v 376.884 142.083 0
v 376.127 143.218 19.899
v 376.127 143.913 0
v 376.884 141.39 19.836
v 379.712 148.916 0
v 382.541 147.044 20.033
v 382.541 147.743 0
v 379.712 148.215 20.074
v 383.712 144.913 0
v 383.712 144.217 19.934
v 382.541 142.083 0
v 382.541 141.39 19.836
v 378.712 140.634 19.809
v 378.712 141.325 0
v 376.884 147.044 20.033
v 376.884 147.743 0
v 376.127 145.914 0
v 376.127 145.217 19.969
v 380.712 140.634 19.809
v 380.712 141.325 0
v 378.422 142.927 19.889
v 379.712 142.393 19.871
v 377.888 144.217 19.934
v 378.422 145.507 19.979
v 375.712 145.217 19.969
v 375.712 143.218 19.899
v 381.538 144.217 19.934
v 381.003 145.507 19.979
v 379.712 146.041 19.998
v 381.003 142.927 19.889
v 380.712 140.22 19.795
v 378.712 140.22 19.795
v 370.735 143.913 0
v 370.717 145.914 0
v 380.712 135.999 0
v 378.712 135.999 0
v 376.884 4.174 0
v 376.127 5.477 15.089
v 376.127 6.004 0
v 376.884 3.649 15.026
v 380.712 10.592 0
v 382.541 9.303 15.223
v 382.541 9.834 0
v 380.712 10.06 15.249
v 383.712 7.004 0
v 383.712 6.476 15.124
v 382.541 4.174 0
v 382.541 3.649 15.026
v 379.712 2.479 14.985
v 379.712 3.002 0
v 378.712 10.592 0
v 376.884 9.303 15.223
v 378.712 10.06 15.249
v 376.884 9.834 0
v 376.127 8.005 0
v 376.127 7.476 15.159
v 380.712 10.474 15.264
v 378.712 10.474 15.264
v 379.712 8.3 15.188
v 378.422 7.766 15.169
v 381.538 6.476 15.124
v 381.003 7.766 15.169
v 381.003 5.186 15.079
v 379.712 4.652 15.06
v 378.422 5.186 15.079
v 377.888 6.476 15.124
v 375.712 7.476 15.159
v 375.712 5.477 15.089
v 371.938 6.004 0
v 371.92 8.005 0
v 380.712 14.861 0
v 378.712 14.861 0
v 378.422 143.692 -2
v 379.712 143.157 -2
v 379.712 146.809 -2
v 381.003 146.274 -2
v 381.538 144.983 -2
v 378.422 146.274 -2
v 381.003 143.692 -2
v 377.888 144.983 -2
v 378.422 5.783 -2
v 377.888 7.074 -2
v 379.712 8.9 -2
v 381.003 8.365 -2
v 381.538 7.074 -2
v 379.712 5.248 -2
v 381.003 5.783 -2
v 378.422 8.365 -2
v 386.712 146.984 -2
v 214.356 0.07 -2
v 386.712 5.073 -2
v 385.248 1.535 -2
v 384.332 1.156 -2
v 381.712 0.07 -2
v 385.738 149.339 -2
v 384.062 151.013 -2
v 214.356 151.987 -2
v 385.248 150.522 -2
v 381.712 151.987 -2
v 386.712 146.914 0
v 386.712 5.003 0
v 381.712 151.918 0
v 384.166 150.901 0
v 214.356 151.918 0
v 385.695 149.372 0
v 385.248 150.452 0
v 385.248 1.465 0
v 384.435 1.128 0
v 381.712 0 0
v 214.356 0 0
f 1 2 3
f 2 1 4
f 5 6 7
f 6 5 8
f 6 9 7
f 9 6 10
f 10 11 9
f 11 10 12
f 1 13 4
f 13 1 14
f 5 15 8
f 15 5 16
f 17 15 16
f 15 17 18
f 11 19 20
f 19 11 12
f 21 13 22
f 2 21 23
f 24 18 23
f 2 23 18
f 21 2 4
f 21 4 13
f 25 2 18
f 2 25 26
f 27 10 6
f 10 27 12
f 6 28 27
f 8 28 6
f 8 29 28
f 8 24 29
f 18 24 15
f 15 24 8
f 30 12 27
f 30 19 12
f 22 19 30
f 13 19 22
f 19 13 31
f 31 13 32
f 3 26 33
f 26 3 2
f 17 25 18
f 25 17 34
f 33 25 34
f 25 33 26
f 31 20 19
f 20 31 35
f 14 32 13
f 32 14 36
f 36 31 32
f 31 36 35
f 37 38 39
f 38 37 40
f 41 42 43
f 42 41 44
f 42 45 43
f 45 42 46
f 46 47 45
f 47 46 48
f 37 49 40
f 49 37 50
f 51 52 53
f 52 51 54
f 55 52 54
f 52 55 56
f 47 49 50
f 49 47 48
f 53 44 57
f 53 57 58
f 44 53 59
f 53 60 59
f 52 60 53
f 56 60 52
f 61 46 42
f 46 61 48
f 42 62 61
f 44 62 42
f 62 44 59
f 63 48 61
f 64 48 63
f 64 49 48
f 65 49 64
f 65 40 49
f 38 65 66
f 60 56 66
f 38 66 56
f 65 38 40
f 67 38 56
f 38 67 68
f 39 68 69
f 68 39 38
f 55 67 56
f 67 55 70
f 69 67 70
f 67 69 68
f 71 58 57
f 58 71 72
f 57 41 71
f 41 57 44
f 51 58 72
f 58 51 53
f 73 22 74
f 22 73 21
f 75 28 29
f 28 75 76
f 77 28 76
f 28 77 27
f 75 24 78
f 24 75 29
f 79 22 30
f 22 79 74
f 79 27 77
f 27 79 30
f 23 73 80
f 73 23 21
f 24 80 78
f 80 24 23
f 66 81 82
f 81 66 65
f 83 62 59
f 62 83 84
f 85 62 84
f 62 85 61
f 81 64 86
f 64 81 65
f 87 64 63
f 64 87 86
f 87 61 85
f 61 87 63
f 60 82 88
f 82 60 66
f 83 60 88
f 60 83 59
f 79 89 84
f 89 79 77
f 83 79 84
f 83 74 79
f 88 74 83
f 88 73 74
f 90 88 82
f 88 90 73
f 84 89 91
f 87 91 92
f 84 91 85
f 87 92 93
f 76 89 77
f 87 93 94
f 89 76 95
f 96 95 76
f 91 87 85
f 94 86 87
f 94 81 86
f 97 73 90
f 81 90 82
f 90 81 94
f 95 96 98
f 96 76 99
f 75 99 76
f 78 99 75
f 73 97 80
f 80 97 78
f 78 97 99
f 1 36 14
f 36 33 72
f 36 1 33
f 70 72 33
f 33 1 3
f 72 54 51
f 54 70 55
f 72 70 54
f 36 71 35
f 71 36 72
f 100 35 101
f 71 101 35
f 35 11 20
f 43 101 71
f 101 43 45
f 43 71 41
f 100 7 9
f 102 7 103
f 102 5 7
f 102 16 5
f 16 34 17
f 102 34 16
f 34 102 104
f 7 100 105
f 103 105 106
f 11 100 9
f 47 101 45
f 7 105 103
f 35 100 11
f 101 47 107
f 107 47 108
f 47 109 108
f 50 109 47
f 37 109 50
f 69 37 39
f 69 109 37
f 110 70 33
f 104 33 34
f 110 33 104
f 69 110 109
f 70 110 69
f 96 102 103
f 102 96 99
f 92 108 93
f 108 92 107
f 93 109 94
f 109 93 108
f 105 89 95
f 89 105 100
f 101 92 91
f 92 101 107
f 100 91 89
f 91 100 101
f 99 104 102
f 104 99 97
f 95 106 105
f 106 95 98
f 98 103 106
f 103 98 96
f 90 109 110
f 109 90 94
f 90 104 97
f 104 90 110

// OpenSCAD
// Generated by SolidPython 1.1.3 on 2025-01-18 15:26:41
$fn = 8;


difference() {
	intersection() {
		union() {
			difference() {
				rotate(a = 2, v = [1, 0, 0]) {
					translate(v = [0, 0, 15.4445000000]) {
						translate(v = [0, 133.8250000000, 0]) {
							translate(v = [10, 0, 0]) {
								difference() {
									translate(v = [-3, 0, 0]) {
										translate(v = [0, -126.8250000000, 0]) {
											translate(v = [0, 0, -68.5555000000]) {
												union() {
													translate(v = [0, 0, 0]) {
														translate(v = [0, 0, 0]) {
															union() {
																cylinder(h = 68, r = 4.0000000000);
																rotate(a = 90, v = [1, 0, 0]) {
																	linear_extrude(center = true, height = 2) {
																		polygon(paths = [[0, 1, 2, 3]], points = [[0, 0], [0, 68], [4.0000000000, 68], [21.0000000000, 0]]);
																	}
																}
																rotate(a = 90, v = [0, 0, 1]) {
																	rotate(a = 90, v = [1, 0, 0]) {
																		linear_extrude(center = true, height = 2) {
																			polygon(paths = [[0, 1, 2, 3]], points = [[0, 0], [0, 68], [4.0000000000, 68], [21.0000000000, 0]]);
																		}
																	}
																}
															}
														}
													}
													translate(v = [0, 0, 0]) {
														translate(v = [0, 137.8250000000, 0]) {
															union() {
																cylinder(h = 68, r = 4.0000000000);
																rotate(a = 90, v = [1, 0, 0]) {
																	linear_extrude(center = true, height = 2) {
																		polygon(paths = [[0, 1, 2, 3]], points = [[0, 0], [0, 68], [4.0000000000, 68], [21.0000000000, 0]]);
																	}
																}
																rotate(a = 270, v = [0, 0, 1]) {
																	rotate(a = 90, v = [1, 0, 0]) {
																		linear_extrude(center = true, height = 2) {
																			polygon(paths = [[0, 1, 2, 3]], points = [[0, 0], [0, 68], [4.0000000000, 68], [21.0000000000, 0]]);
																		}
																	}
																}
															}
														}
													}
													translate(v = [372.7125000000, 0, 0]) {
														translate(v = [0, 137.8250000000, 0]) {
															union() {
																cylinder(h = 68, r = 4.0000000000);
																rotate(a = 180, v = [0, 0, 1]) {
																	rotate(a = 90, v = [1, 0, 0]) {
																		linear_extrude(center = true, height = 2) {
																			polygon(paths = [[0, 1, 2, 3]], points = [[0, 0], [0, 68], [4.0000000000, 68], [21.0000000000, 0]]);
																		}
																	}
																}
																rotate(a = 270, v = [0, 0, 1]) {
																	rotate(a = 90, v = [1, 0, 0]) {
																		linear_extrude(center = true, height = 2) {
																			polygon(paths = [[0, 1, 2, 3]], points = [[0, 0], [0, 68], [4.0000000000, 68], [21.0000000000, 0]]);
																		}
																	}
																}
															}
														}
													}
													translate(v = [372.7125000000, 0, 0]) {
														translate(v = [0, 0, 0]) {
															union() {
																cylinder(h = 68, r = 4.0000000000);
																rotate(a = 180, v = [0, 0, 1]) {
																	rotate(a = 90, v = [1, 0, 0]) {
																		linear_extrude(center = true, height = 2) {
																			polygon(paths = [[0, 1, 2, 3]], points = [[0, 0], [0, 68], [4.0000000000, 68], [21.0000000000, 0]]);
																		}
																	}
																}
																rotate(a = 90, v = [0, 0, 1]) {
																	rotate(a = 90, v = [1, 0, 0]) {
																		linear_extrude(center = true, height = 2) {
																			polygon(paths = [[0, 1, 2, 3]], points = [[0, 0], [0, 68], [4.0000000000, 68], [21.0000000000, 0]]);
																		}
																	}
																}
															}
														}
													}
													translate(v = [186.3562500000, 0, 0]) {
														translate(v = [0, 137.8250000000, 0]) {
															union() {
																cylinder(h = 68, r = 4.0000000000);
																rotate(a = 90, v = [1, 0, 0]) {
																	linear_extrude(center = true, height = 2) {
																		polygon(paths = [[0, 1, 2, 3]], points = [[0, 0], [0, 68], [4.0000000000, 68], [21.0000000000, 0]]);
																	}
																}
																rotate(a = 180, v = [0, 0, 1]) {
																	rotate(a = 90, v = [1, 0, 0]) {
																		linear_extrude(center = true, height = 2) {
																			polygon(paths = [[0, 1, 2, 3]], points = [[0, 0], [0, 68], [4.0000000000, 68], [21.0000000000, 0]]);
																		}
																	}
																}
															}
														}
													}
													translate(v = [186.3562500000, 0, 0]) {
														translate(v = [0, 0, 0]) {
															union() {
																cylinder(h = 68, r = 4.0000000000);
																rotate(a = 90, v = [1, 0, 0]) {
																	linear_extrude(center = true, height = 2) {
																		polygon(paths = [[0, 1, 2, 3]], points = [[0, 0], [0, 68], [4.0000000000, 68], [21.0000000000, 0]]);
																	}
																}
																rotate(a = 180, v = [0, 0, 1]) {
																	rotate(a = 90, v = [1, 0, 0]) {
																		linear_extrude(center = true, height = 2) {
																			polygon(paths = [[0, 1, 2, 3]], points = [[0, 0], [0, 68], [4.0000000000, 68], [21.0000000000, 0]]);
																		}
																	}
																}
															}
														}
													}
												}
											}
										}
									}
									translate(v = [-3, 0, 0]) {
										translate(v = [0, -126.8250000000, 0]) {
											union() {
												translate(v = [0, 0, 0]) {
													translate(v = [0, 0, 0]) {
														cylinder(center = true, h = 272, r = 1.8250000000);
													}
												}
												translate(v = [0, 0, 0]) {
													translate(v = [0, 137.8250000000, 0]) {
														cylinder(center = true, h = 272, r = 1.8250000000);
													}
												}
												translate(v = [372.7125000000, 0, 0]) {
													translate(v = [0, 137.8250000000, 0]) {
														cylinder(center = true, h = 272, r = 1.8250000000);
													}
												}
												translate(v = [372.7125000000, 0, 0]) {
													translate(v = [0, 0, 0]) {
														cylinder(center = true, h = 272, r = 1.8250000000);
													}
												}
												translate(v = [186.3562500000, 0, 0]) {
													translate(v = [0, 137.8250000000, 0]) {
														cylinder(center = true, h = 272, r = 1.8250000000);
													}
												}
												translate(v = [186.3562500000, 0, 0]) {
													translate(v = [0, 0, 0]) {
														cylinder(center = true, h = 272, r = 1.8250000000);
													}
												}
											}
										}
									}
								}
							}
						}
					}
				}
				translate(v = [0, 0, -2]) {
					translate(v = [0, 0, -100]) {
						translate(v = [0, -75.9125000000, 0]) {
							translate(v = [-193.3562500000, 0, 0]) {
								cube(size = [773.4250000000, 303.6500000000, 100]);
							}
						}
					}
				}
			}
			intersection() {
				translate(v = [0, 0, -2]) {
					translate(v = [-193.3562500000, 0, 0]) {
						translate(v = [0, -75.9125000000, 0]) {
							cube(size = [773.4250000000, 303.6500000000, 2]);
						}
					}
				}
				rotate(a = 2, v = [1, 0, 0]) {
					translate(v = [0, 0, 15.4445000000]) {
						translate(v = [0, 133.8250000000, 0]) {
							translate(v = [10, 0, 0]) {
								translate(v = [0, 0, -34.0000000000]) {
									translate(v = [183.3562500000, 0, 0]) {
										translate(v = [0, -57.9125000000, 0]) {
											minkowski() {
												cube(center = true, size = [376.7125000000, 141.8250000000, 68]);
												cylinder(center = true, h = 0.5555000000, r = 5);
											}
										}
									}
								}
							}
						}
					}
				}
			}
		}
		translate(v = [0, 0, 15.4445000000]) {
			translate(v = [0, 133.8250000000, 0]) {
				translate(v = [10, 0, 0]) {
					translate(v = [204.3562500000, 0, 0]) {
						translate(v = [0, -227.7375000000, 0]) {
							translate(v = [0, 0, -34.0000000000]) {
								cube(size = [172.3562500000, 303.6500000000, 136]);
							}
						}
					}
				}
			}
		}
	}
	rotate(a = 2, v = [1, 0, 0]) {
		translate(v = [0, 0, 15.4445000000]) {
			translate(v = [0, 133.8250000000, 0]) {
				translate(v = [10, 0, 0]) {
					translate(v = [-3, 0, 0]) {
						translate(v = [0, -126.8250000000, 0]) {
							union() {
								translate(v = [0, 0, 0]) {
									translate(v = [0, 0, 0]) {
										cylinder(center = true, h = 272, r = 1.8250000000);
									}
								}
								translate(v = [0, 0, 0]) {
									translate(v = [0, 137.8250000000, 0]) {
										cylinder(center = true, h = 272, r = 1.8250000000);
									}
								}
								translate(v = [372.7125000000, 0, 0]) {
									translate(v = [0, 137.8250000000, 0]) {
										cylinder(center = true, h = 272, r = 1.8250000000);
									}
								}
								translate(v = [372.7125000000, 0, 0]) {
									translate(v = [0, 0, 0]) {
										cylinder(center = true, h = 272, r = 1.8250000000);
									}
								}
								translate(v = [186.3562500000, 0, 0]) {
									translate(v = [0, 137.8250000000, 0]) {
										cylinder(center = true, h = 272, r = 1.8250000000);
									}
								}
								translate(v = [186.3562500000, 0, 0]) {
									translate(v = [0, 0, 0]) {
										cylinder(center = true, h = 272, r = 1.8250000000);
									}
								}
							}
						}
					}
				}
			}
		}
	}
}
/***********************************************
*********      SolidPython code:      **********
************************************************
 
#!/usr/bin/env python3

import argparse
from asyncio import subprocess
import json
# import math
import re
import logging
import os
# import os.path
import subprocess
# import time

from solid import *
from solid.utils import *

from parameters import Parameters
from keyboard import Keyboard
from cable import Cable

# Set logger level variables
console_logging_level = logging.WARN
file_logging_level = logging.DEBUG


# Get root logger and set main logger level to DEBUG
logger = logging.getLogger()
logger.setLevel(logging.DEBUG)


# Create formatters
console_formatter = logging.Formatter('%(name)s %(levelname)s: %(funcName)s: [%(lineno)d]: %(message)s')
file_formatter = logging.Formatter('%(asctime)s %(levelname)s %(name)s: %(funcName)s: [%(lineno)d]: %(message)s')

# Create console handler and set level to info
console_handler = logging.StreamHandler()
console_handler.setLevel(console_logging_level)

# Add formatter to console_handler
console_handler.setFormatter(console_formatter)

# Add console handler to logger
logger.addHandler(console_handler)

# Get file info that will be used to creat log file
script_location = Path(os.path.dirname(os.path.realpath(__file__)))
log_file_name = 'generator.log'
log_file_path = script_location / log_file_name

# Create file handler and set level to info
file_handler = logging.FileHandler(log_file_path, mode = 'w')
file_handler.setLevel(file_logging_level)

# Add formatter to file_handler
file_handler.setFormatter(file_formatter)

# Add file handler to logger
logger.addHandler(file_handler)


# Helper for parser to wnsure filename argument has to correct extension
def CheckExt(choices):
    class Act(argparse.Action):
        def __call__(self,parser,namespace,fname,option_string=None):
            ext = os.path.splitext(fname)[1][1:]
            if ext not in choices:
                option_string = '({})'.format(option_string) if option_string else ''
                parser.error("file doesn't end with one of {}{}".format(choices,option_string))
            else:
                setattr(namespace,self.dest,fname)

    return Act



def main():

    parser = argparse.ArgumentParser(description='Build custom keyboard SCAD file using keyboard layout editor format')
    parser.add_argument('-i', '--input-file', metavar = 'layout_json_file_name.json', help = 'A path to a keyboard layout editor json file', required = True, action=CheckExt({'json'}))
    # parser.add_argument('-o', '--output-folder', metavar = 'scad', help = 'A path to a folder to store the generated open scad file')
    parser.add_argument('-p', '--parameter-file', metavar = 'parameters.json', help = 'A JSON file containing paramters for the object buing made', default = None, action=CheckExt({'json'}))
    parser.add_argument('-s', '--section', metavar = 'section_num', help = 'The number of the section that should be built', type = int, default = -1)
    parser.add_argument('-a', '--all-sections', help = 'Output all the parts for all possible sections in separate files', default = False, action = 'store_true')
    parser.add_argument('-e', '--exploded', help = 'Create test file with each section shown as an exploded view', default = False, action = 'store_true')
    parser.add_argument('-f', '--fragments', metavar = 'num_fragments', help = 'The number of fragments to be used when creating curves', type = int, default = 8)
    parser.add_argument('-r', '--render', help = 'Render an STL from the generated scad file', default = False, action = 'store_true')
    parser.add_argument('--switch-type-in-filename', help = 'Add the switch type name and stabilizer type name to the filname', default = False, action = 'store_true')

    # Parse command line arguments
    args = parser.parse_args()
    logger.debug(vars(args))

    # Create Path object from input file argument
    input_file_path = Path(args.input_file)

    # Get base folder path
    base_path = input_file_path.parent

    # Get input file name onle
    file_name_only = input_file_path.name
    
    # Get layout name from file name
    layout_name = input_file_path.stem

    # Generate output scad and stl output folder paths
    output_base_folder = base_path / layout_name
    scad_folder_path = output_base_folder / 'scad'
    stl_folder_path = output_base_folder / 'stl'

    # Ensure all outpur folders exists
    if output_base_folder.is_dir() == False:
        output_base_folder.mkdir()

    if scad_folder_path.is_dir() == False:
        scad_folder_path.mkdir()

    if stl_folder_path.is_dir() == False:
        stl_folder_path.mkdir()

    logger.debug('layout_name: %s', str(layout_name))
    logger.debug('base_path: %s', str(base_path))
    logger.debug('file_name_only: %s', str(file_name_only))
    
    # define output file extensions
    scad_postfix = '.scad'
    stl_postfix  = '.stl'

    # Set fragments per circle
    FRAGMENTS = args.fragments
    logger.debug('\tFragments: %d', FRAGMENTS)

    # Pattern and Replacement strings to be used when trying to turn keyboard-layout-editor raw output into valid JSON
    json_key_pattern = '([{,])([xywha1]+):'
    json_key_replace = '\\1"\\2":'

    # Open JSON layout file
    logger.debug('Open layout file %s', input_file_path)
    try:
        # Try with utf-8 encoding specified
        f = open(input_file_path, encoding="utf-8")
    except:
        # Failed to open
        logger.info('Failed to open layout file with utf-8 encoding specified. Try opening without specifying an encoding')
        try:
            # Try opening with no encoding spcificed
            f = open(input_file_path)
        except:
            logger.error('Failed to open layout file both spefifying utf-8 andcoding and not specifying any encodeing. Exiting')
            exit(1)

    logger.debug('Read layout JSON string from file %s', input_file_path)
    try:
        keyboard_layout = f.read()
    except UnicodeDecodeError:
        logger.error('Unable to decode layout file. Please provide utf-8 encoded files')
        exit(-1)

    keyboard_layout_dict = None

    # Load keyboard layout dictionary
    logger.debug('Parse layout file JSON string')
    try:
        # Attempt to parse to provided JSON string
        keyboard_layout_dict = json.loads(keyboard_layout)
        logger.debug('Valid Json Parsed')
    except:
        # Failed to parse the JSON test.
        # This most likely means that the keybaord-layout-editor raw output was provided
        # Attempt to modify that string to make it valid JSON
        keyboard_layout = '[%s]' % (keyboard_layout)
        keyboard_layout = re.sub(json_key_pattern, json_key_replace, keyboard_layout)
        try:
            keyboard_layout_dict = json.loads(keyboard_layout)
            logger.info('Initial layout Json Invalid. Json modified and parsed')
        except:
            logger.error('Failed to parse layout json after attempt at correction.')
            raise

    logger.debug('keyboard_layout_dict: %s', str(keyboard_layout_dict))


    # Read parameter file
    parameter_dict = None
    if args.parameter_file is not None:
        # Open JSON parameter file
        logger.debug('Open parameter file %s', args.parameter_file)
        try:
            # Try with utf-8 encoding specified
            f = open(args.parameter_file, encoding="utf-8")
        except:
            # Failed to open
            logger.info('Failed to open parameter file with utf-8 encoding specified. Try opening without specifying an encoding')
            try:
                # Try opening with no encoding spcificed
                f = open(args.parameter_fil)
            except:
                logger.error('Failed to open parameter file both spefifying utf-8 andcoding and not specifying any encodeing. Exiting')
                exit(1)
        

        logger.debug('Read JSON string from parameter file %s', args.parameter_file)
        try:
             parameter_file_text = f.read()
        except UnicodeDecodeError:
            logger.error('Unable to decode parameter file. Please provide utf-8 encoded files')
            exit(-1)
       
        logger.debug('Parse parameter JSON string')
        try:
            parameter_dict = json.loads(parameter_file_text)
            logger.debug('Valid Json Parsed')
        except:
            logger.error('Failed to parse parameter JSON file.')
            raise

        logger.debug('parameter_dict: %s', str(parameter_dict))


    # Set parameters from imput file
    parameters = Parameters(parameter_dict)
    
    # Create Keyboard instance
    keyboard = Keyboard(parameters)

    # Process the keyboard layout object
    keyboard.process_keyboard_layout(keyboard_layout_dict)
    keyboard.process_custom_shapes()

    logger.debug('kerf: %f', keyboard.kerf)

    # Dictionary of SolidPython solid objects that need to be rendered to SCAD and to STL if desired
    solid_object_dict = {}

    # Create objects for each of the generated sections
    if args.all_sections == True:
        # Iterate over all sections generated and add all sections to solid_object_dict
        for section in range(keyboard.get_top_section_count()):
            # Set current section for generator
            keyboard.set_section(section)

            # Create dict for section
            solid_object_dict[section] = {}

            # Add top assembly, plate, and all assembly to section dict
            solid_object_dict[section]['top'] = keyboard.get_assembly(top = True)
            solid_object_dict[section]['all'] = keyboard.get_assembly(all = True)
            solid_object_dict[section]['plate'] = keyboard.get_assembly(plate_only = True)

            # If there is a bottom section for the current section add it to section dict
            if section < keyboard.get_bottom_section_count():
                solid_object_dict[section]['bottom'] = keyboard.get_assembly(bottom = True)
            
    # Create exploded object
    elif args.exploded == True:
        solid_object_dict[-1] = {}
        solid_object_dict[-1]['top'] = union()
        solid_object_dict[-1]['plate'] = union()
        solid_object_dict[-1]['bottom'] = union()
        for section in range(keyboard.get_top_section_count()):
            keyboard.set_section(section)
            solid_object_dict[-1]['top'] += up(5 * section) ( right(10 * section) ( keyboard.get_assembly(top = True) ) )
            solid_object_dict[-1]['plate'] += up(5 * section) ( right(10 * section) ( keyboard.get_assembly(plate_only = True) ) )
            if section < keyboard.get_bottom_section_count():
                solid_object_dict[-1]['bottom'] += up(5 * section) ( right(10 * section) ( keyboard.get_assembly(bottom = True) ) )
    

    # Create objects for a specified section
    elif args.section > -1:
        # Set desired section to create
        keyboard.set_section(args.section)

        # Create dict for section
        solid_object_dict[args.section] = {}

        # Add top assembly, plate, and all assembly to section dict
        solid_object_dict[args.section]['top'] = keyboard.get_assembly(top = True)
        solid_object_dict[args.section]['all'] = keyboard.get_assembly(all = True)
        solid_object_dict[args.section]['plate'] = keyboard.get_assembly(plate_only = True)

        # If there is a bottom section for the current section add it to section dict
        if args.section < keyboard.get_bottom_section_count():
            solid_object_dict[args.section]['bottom'] = keyboard.get_assembly(bottom = True)

    # Create an objects that are not split into sections. No other options were specified
    else:
        logger.debug('Create whole object. No other options specified')
        solid_object_dict['all'] = {}
        solid_object_dict['all']['top'] = keyboard.get_assembly(top = True)
        solid_object_dict['all']['bottom'] = keyboard.get_assembly(bottom = True)
        solid_object_dict['all']['all'] = keyboard.get_assembly(all = True)
        solid_object_dict['all']['plate'] = keyboard.get_assembly(plate_only = True)
    
    # Add global items that are not dependant on the sctions or parts of the item to build
    solid_object_dict['global'] = {}

    # Generate a strain relief piece for the cable hole
    if parameters.cable_hole == True:
        cable = Cable(parameters)
        solid_object_dict['global']['cable_holder_main'] = cable.holder_main()
        solid_object_dict['global']['cable_holder_clamp'] = cable.holder_clamp()
        solid_object_dict['global']['cable_holder_all'] = cable.holder_all()

    print(parameters)
    print('Case Height: %f, Case Width: %f\n' % (parameters.real_case_height, parameters.real_case_width))
    
    logger.info('Case Height: %f, Case Width: %f', parameters.real_case_height, parameters.real_case_width)
    logger.info('Sections In Top: %d', keyboard.get_top_section_count())
    logger.info('Sections In Bottom: %d', keyboard.get_bottom_section_count())


    ############################################################
    # Render SCAD and STL files
    ############################################################
    subprocess_dict = {}

    switch_type_for_filename = ''
    stab_type_for_filename = ''

    for section in solid_object_dict.keys():

        if args.switch_type_in_filename == True:
            switch_type_for_filename = '_' + parameters.switch_type
            stab_type_for_filename = '_' + parameters.stabilizer_type

        section_postfix = ''

        # Creating global items that have no relaton to switch type
        if isinstance(section, str) and section == 'global':
            switch_type_for_filename = ''
            stab_type_for_filename = ''
        
        # If the current object dict section is an int greater than -1 add the section number to the filename
        if isinstance(section, int) and section > -1:
            section_postfix = '_section_%d' % (section)
        
        if args.exploded == True:
            section_postfix = '_exploded'

        for part_name in solid_object_dict[section].keys():
            part_name_formatted = '_' + part_name

            scad_file_name = scad_folder_path / (layout_name + section_postfix + part_name_formatted + switch_type_for_filename + stab_type_for_filename + scad_postfix)
            stl_file_name = stl_folder_path / (layout_name + section_postfix + part_name_formatted + switch_type_for_filename + stab_type_for_filename + stl_postfix)

            if solid_object_dict[section][part_name] is not None:
                logger.info('Generate scad file with name %s', scad_file_name)
                # Generate SCAD file from assembly
                scad_render_to_file(solid_object_dict[section][part_name], scad_file_name, file_header=f'$fn = {FRAGMENTS};')
                print('Generated scad file with name', scad_file_name)
                
                # Render STL if option is chosen
                if args.render:
                    logger.debug('Render STL from SCAD')
                    logger.info('Generate stl file with name %s from %s', stl_file_name, scad_file_name)

                    openscad_command_list = ['openscad', '-o', '%s' % (stl_file_name), '%s' % (scad_file_name)]
                    subprocess_dict[stl_file_name] = subprocess.Popen(openscad_command_list)
    
    
    ################################################################
    #  Wait for render processes to complete
    ################################################################
    if args.render:
        logger.debug(subprocess_dict)
        running = True
        while running == True:
            running = False
            for stl_file_name in subprocess_dict.keys():
                p = subprocess_dict[stl_file_name]
                if p is not None:
                    # running = True
                    rcode = None
                    try:
                        rcode = p.wait(.1)
                    except subprocess.TimeoutExpired as err:
                        running = True
                    if rcode is not None:
                        logger.info('Render Complete: file: %s', stl_file_name)
                        print('Render Complete: file:', stl_file_name)
                        subprocess_dict[stl_file_name] = None
            # time.sleep(1)



    logger.info('Generation Complete')

if __name__ == "__main__":
    main()
 
 
************************************************/
